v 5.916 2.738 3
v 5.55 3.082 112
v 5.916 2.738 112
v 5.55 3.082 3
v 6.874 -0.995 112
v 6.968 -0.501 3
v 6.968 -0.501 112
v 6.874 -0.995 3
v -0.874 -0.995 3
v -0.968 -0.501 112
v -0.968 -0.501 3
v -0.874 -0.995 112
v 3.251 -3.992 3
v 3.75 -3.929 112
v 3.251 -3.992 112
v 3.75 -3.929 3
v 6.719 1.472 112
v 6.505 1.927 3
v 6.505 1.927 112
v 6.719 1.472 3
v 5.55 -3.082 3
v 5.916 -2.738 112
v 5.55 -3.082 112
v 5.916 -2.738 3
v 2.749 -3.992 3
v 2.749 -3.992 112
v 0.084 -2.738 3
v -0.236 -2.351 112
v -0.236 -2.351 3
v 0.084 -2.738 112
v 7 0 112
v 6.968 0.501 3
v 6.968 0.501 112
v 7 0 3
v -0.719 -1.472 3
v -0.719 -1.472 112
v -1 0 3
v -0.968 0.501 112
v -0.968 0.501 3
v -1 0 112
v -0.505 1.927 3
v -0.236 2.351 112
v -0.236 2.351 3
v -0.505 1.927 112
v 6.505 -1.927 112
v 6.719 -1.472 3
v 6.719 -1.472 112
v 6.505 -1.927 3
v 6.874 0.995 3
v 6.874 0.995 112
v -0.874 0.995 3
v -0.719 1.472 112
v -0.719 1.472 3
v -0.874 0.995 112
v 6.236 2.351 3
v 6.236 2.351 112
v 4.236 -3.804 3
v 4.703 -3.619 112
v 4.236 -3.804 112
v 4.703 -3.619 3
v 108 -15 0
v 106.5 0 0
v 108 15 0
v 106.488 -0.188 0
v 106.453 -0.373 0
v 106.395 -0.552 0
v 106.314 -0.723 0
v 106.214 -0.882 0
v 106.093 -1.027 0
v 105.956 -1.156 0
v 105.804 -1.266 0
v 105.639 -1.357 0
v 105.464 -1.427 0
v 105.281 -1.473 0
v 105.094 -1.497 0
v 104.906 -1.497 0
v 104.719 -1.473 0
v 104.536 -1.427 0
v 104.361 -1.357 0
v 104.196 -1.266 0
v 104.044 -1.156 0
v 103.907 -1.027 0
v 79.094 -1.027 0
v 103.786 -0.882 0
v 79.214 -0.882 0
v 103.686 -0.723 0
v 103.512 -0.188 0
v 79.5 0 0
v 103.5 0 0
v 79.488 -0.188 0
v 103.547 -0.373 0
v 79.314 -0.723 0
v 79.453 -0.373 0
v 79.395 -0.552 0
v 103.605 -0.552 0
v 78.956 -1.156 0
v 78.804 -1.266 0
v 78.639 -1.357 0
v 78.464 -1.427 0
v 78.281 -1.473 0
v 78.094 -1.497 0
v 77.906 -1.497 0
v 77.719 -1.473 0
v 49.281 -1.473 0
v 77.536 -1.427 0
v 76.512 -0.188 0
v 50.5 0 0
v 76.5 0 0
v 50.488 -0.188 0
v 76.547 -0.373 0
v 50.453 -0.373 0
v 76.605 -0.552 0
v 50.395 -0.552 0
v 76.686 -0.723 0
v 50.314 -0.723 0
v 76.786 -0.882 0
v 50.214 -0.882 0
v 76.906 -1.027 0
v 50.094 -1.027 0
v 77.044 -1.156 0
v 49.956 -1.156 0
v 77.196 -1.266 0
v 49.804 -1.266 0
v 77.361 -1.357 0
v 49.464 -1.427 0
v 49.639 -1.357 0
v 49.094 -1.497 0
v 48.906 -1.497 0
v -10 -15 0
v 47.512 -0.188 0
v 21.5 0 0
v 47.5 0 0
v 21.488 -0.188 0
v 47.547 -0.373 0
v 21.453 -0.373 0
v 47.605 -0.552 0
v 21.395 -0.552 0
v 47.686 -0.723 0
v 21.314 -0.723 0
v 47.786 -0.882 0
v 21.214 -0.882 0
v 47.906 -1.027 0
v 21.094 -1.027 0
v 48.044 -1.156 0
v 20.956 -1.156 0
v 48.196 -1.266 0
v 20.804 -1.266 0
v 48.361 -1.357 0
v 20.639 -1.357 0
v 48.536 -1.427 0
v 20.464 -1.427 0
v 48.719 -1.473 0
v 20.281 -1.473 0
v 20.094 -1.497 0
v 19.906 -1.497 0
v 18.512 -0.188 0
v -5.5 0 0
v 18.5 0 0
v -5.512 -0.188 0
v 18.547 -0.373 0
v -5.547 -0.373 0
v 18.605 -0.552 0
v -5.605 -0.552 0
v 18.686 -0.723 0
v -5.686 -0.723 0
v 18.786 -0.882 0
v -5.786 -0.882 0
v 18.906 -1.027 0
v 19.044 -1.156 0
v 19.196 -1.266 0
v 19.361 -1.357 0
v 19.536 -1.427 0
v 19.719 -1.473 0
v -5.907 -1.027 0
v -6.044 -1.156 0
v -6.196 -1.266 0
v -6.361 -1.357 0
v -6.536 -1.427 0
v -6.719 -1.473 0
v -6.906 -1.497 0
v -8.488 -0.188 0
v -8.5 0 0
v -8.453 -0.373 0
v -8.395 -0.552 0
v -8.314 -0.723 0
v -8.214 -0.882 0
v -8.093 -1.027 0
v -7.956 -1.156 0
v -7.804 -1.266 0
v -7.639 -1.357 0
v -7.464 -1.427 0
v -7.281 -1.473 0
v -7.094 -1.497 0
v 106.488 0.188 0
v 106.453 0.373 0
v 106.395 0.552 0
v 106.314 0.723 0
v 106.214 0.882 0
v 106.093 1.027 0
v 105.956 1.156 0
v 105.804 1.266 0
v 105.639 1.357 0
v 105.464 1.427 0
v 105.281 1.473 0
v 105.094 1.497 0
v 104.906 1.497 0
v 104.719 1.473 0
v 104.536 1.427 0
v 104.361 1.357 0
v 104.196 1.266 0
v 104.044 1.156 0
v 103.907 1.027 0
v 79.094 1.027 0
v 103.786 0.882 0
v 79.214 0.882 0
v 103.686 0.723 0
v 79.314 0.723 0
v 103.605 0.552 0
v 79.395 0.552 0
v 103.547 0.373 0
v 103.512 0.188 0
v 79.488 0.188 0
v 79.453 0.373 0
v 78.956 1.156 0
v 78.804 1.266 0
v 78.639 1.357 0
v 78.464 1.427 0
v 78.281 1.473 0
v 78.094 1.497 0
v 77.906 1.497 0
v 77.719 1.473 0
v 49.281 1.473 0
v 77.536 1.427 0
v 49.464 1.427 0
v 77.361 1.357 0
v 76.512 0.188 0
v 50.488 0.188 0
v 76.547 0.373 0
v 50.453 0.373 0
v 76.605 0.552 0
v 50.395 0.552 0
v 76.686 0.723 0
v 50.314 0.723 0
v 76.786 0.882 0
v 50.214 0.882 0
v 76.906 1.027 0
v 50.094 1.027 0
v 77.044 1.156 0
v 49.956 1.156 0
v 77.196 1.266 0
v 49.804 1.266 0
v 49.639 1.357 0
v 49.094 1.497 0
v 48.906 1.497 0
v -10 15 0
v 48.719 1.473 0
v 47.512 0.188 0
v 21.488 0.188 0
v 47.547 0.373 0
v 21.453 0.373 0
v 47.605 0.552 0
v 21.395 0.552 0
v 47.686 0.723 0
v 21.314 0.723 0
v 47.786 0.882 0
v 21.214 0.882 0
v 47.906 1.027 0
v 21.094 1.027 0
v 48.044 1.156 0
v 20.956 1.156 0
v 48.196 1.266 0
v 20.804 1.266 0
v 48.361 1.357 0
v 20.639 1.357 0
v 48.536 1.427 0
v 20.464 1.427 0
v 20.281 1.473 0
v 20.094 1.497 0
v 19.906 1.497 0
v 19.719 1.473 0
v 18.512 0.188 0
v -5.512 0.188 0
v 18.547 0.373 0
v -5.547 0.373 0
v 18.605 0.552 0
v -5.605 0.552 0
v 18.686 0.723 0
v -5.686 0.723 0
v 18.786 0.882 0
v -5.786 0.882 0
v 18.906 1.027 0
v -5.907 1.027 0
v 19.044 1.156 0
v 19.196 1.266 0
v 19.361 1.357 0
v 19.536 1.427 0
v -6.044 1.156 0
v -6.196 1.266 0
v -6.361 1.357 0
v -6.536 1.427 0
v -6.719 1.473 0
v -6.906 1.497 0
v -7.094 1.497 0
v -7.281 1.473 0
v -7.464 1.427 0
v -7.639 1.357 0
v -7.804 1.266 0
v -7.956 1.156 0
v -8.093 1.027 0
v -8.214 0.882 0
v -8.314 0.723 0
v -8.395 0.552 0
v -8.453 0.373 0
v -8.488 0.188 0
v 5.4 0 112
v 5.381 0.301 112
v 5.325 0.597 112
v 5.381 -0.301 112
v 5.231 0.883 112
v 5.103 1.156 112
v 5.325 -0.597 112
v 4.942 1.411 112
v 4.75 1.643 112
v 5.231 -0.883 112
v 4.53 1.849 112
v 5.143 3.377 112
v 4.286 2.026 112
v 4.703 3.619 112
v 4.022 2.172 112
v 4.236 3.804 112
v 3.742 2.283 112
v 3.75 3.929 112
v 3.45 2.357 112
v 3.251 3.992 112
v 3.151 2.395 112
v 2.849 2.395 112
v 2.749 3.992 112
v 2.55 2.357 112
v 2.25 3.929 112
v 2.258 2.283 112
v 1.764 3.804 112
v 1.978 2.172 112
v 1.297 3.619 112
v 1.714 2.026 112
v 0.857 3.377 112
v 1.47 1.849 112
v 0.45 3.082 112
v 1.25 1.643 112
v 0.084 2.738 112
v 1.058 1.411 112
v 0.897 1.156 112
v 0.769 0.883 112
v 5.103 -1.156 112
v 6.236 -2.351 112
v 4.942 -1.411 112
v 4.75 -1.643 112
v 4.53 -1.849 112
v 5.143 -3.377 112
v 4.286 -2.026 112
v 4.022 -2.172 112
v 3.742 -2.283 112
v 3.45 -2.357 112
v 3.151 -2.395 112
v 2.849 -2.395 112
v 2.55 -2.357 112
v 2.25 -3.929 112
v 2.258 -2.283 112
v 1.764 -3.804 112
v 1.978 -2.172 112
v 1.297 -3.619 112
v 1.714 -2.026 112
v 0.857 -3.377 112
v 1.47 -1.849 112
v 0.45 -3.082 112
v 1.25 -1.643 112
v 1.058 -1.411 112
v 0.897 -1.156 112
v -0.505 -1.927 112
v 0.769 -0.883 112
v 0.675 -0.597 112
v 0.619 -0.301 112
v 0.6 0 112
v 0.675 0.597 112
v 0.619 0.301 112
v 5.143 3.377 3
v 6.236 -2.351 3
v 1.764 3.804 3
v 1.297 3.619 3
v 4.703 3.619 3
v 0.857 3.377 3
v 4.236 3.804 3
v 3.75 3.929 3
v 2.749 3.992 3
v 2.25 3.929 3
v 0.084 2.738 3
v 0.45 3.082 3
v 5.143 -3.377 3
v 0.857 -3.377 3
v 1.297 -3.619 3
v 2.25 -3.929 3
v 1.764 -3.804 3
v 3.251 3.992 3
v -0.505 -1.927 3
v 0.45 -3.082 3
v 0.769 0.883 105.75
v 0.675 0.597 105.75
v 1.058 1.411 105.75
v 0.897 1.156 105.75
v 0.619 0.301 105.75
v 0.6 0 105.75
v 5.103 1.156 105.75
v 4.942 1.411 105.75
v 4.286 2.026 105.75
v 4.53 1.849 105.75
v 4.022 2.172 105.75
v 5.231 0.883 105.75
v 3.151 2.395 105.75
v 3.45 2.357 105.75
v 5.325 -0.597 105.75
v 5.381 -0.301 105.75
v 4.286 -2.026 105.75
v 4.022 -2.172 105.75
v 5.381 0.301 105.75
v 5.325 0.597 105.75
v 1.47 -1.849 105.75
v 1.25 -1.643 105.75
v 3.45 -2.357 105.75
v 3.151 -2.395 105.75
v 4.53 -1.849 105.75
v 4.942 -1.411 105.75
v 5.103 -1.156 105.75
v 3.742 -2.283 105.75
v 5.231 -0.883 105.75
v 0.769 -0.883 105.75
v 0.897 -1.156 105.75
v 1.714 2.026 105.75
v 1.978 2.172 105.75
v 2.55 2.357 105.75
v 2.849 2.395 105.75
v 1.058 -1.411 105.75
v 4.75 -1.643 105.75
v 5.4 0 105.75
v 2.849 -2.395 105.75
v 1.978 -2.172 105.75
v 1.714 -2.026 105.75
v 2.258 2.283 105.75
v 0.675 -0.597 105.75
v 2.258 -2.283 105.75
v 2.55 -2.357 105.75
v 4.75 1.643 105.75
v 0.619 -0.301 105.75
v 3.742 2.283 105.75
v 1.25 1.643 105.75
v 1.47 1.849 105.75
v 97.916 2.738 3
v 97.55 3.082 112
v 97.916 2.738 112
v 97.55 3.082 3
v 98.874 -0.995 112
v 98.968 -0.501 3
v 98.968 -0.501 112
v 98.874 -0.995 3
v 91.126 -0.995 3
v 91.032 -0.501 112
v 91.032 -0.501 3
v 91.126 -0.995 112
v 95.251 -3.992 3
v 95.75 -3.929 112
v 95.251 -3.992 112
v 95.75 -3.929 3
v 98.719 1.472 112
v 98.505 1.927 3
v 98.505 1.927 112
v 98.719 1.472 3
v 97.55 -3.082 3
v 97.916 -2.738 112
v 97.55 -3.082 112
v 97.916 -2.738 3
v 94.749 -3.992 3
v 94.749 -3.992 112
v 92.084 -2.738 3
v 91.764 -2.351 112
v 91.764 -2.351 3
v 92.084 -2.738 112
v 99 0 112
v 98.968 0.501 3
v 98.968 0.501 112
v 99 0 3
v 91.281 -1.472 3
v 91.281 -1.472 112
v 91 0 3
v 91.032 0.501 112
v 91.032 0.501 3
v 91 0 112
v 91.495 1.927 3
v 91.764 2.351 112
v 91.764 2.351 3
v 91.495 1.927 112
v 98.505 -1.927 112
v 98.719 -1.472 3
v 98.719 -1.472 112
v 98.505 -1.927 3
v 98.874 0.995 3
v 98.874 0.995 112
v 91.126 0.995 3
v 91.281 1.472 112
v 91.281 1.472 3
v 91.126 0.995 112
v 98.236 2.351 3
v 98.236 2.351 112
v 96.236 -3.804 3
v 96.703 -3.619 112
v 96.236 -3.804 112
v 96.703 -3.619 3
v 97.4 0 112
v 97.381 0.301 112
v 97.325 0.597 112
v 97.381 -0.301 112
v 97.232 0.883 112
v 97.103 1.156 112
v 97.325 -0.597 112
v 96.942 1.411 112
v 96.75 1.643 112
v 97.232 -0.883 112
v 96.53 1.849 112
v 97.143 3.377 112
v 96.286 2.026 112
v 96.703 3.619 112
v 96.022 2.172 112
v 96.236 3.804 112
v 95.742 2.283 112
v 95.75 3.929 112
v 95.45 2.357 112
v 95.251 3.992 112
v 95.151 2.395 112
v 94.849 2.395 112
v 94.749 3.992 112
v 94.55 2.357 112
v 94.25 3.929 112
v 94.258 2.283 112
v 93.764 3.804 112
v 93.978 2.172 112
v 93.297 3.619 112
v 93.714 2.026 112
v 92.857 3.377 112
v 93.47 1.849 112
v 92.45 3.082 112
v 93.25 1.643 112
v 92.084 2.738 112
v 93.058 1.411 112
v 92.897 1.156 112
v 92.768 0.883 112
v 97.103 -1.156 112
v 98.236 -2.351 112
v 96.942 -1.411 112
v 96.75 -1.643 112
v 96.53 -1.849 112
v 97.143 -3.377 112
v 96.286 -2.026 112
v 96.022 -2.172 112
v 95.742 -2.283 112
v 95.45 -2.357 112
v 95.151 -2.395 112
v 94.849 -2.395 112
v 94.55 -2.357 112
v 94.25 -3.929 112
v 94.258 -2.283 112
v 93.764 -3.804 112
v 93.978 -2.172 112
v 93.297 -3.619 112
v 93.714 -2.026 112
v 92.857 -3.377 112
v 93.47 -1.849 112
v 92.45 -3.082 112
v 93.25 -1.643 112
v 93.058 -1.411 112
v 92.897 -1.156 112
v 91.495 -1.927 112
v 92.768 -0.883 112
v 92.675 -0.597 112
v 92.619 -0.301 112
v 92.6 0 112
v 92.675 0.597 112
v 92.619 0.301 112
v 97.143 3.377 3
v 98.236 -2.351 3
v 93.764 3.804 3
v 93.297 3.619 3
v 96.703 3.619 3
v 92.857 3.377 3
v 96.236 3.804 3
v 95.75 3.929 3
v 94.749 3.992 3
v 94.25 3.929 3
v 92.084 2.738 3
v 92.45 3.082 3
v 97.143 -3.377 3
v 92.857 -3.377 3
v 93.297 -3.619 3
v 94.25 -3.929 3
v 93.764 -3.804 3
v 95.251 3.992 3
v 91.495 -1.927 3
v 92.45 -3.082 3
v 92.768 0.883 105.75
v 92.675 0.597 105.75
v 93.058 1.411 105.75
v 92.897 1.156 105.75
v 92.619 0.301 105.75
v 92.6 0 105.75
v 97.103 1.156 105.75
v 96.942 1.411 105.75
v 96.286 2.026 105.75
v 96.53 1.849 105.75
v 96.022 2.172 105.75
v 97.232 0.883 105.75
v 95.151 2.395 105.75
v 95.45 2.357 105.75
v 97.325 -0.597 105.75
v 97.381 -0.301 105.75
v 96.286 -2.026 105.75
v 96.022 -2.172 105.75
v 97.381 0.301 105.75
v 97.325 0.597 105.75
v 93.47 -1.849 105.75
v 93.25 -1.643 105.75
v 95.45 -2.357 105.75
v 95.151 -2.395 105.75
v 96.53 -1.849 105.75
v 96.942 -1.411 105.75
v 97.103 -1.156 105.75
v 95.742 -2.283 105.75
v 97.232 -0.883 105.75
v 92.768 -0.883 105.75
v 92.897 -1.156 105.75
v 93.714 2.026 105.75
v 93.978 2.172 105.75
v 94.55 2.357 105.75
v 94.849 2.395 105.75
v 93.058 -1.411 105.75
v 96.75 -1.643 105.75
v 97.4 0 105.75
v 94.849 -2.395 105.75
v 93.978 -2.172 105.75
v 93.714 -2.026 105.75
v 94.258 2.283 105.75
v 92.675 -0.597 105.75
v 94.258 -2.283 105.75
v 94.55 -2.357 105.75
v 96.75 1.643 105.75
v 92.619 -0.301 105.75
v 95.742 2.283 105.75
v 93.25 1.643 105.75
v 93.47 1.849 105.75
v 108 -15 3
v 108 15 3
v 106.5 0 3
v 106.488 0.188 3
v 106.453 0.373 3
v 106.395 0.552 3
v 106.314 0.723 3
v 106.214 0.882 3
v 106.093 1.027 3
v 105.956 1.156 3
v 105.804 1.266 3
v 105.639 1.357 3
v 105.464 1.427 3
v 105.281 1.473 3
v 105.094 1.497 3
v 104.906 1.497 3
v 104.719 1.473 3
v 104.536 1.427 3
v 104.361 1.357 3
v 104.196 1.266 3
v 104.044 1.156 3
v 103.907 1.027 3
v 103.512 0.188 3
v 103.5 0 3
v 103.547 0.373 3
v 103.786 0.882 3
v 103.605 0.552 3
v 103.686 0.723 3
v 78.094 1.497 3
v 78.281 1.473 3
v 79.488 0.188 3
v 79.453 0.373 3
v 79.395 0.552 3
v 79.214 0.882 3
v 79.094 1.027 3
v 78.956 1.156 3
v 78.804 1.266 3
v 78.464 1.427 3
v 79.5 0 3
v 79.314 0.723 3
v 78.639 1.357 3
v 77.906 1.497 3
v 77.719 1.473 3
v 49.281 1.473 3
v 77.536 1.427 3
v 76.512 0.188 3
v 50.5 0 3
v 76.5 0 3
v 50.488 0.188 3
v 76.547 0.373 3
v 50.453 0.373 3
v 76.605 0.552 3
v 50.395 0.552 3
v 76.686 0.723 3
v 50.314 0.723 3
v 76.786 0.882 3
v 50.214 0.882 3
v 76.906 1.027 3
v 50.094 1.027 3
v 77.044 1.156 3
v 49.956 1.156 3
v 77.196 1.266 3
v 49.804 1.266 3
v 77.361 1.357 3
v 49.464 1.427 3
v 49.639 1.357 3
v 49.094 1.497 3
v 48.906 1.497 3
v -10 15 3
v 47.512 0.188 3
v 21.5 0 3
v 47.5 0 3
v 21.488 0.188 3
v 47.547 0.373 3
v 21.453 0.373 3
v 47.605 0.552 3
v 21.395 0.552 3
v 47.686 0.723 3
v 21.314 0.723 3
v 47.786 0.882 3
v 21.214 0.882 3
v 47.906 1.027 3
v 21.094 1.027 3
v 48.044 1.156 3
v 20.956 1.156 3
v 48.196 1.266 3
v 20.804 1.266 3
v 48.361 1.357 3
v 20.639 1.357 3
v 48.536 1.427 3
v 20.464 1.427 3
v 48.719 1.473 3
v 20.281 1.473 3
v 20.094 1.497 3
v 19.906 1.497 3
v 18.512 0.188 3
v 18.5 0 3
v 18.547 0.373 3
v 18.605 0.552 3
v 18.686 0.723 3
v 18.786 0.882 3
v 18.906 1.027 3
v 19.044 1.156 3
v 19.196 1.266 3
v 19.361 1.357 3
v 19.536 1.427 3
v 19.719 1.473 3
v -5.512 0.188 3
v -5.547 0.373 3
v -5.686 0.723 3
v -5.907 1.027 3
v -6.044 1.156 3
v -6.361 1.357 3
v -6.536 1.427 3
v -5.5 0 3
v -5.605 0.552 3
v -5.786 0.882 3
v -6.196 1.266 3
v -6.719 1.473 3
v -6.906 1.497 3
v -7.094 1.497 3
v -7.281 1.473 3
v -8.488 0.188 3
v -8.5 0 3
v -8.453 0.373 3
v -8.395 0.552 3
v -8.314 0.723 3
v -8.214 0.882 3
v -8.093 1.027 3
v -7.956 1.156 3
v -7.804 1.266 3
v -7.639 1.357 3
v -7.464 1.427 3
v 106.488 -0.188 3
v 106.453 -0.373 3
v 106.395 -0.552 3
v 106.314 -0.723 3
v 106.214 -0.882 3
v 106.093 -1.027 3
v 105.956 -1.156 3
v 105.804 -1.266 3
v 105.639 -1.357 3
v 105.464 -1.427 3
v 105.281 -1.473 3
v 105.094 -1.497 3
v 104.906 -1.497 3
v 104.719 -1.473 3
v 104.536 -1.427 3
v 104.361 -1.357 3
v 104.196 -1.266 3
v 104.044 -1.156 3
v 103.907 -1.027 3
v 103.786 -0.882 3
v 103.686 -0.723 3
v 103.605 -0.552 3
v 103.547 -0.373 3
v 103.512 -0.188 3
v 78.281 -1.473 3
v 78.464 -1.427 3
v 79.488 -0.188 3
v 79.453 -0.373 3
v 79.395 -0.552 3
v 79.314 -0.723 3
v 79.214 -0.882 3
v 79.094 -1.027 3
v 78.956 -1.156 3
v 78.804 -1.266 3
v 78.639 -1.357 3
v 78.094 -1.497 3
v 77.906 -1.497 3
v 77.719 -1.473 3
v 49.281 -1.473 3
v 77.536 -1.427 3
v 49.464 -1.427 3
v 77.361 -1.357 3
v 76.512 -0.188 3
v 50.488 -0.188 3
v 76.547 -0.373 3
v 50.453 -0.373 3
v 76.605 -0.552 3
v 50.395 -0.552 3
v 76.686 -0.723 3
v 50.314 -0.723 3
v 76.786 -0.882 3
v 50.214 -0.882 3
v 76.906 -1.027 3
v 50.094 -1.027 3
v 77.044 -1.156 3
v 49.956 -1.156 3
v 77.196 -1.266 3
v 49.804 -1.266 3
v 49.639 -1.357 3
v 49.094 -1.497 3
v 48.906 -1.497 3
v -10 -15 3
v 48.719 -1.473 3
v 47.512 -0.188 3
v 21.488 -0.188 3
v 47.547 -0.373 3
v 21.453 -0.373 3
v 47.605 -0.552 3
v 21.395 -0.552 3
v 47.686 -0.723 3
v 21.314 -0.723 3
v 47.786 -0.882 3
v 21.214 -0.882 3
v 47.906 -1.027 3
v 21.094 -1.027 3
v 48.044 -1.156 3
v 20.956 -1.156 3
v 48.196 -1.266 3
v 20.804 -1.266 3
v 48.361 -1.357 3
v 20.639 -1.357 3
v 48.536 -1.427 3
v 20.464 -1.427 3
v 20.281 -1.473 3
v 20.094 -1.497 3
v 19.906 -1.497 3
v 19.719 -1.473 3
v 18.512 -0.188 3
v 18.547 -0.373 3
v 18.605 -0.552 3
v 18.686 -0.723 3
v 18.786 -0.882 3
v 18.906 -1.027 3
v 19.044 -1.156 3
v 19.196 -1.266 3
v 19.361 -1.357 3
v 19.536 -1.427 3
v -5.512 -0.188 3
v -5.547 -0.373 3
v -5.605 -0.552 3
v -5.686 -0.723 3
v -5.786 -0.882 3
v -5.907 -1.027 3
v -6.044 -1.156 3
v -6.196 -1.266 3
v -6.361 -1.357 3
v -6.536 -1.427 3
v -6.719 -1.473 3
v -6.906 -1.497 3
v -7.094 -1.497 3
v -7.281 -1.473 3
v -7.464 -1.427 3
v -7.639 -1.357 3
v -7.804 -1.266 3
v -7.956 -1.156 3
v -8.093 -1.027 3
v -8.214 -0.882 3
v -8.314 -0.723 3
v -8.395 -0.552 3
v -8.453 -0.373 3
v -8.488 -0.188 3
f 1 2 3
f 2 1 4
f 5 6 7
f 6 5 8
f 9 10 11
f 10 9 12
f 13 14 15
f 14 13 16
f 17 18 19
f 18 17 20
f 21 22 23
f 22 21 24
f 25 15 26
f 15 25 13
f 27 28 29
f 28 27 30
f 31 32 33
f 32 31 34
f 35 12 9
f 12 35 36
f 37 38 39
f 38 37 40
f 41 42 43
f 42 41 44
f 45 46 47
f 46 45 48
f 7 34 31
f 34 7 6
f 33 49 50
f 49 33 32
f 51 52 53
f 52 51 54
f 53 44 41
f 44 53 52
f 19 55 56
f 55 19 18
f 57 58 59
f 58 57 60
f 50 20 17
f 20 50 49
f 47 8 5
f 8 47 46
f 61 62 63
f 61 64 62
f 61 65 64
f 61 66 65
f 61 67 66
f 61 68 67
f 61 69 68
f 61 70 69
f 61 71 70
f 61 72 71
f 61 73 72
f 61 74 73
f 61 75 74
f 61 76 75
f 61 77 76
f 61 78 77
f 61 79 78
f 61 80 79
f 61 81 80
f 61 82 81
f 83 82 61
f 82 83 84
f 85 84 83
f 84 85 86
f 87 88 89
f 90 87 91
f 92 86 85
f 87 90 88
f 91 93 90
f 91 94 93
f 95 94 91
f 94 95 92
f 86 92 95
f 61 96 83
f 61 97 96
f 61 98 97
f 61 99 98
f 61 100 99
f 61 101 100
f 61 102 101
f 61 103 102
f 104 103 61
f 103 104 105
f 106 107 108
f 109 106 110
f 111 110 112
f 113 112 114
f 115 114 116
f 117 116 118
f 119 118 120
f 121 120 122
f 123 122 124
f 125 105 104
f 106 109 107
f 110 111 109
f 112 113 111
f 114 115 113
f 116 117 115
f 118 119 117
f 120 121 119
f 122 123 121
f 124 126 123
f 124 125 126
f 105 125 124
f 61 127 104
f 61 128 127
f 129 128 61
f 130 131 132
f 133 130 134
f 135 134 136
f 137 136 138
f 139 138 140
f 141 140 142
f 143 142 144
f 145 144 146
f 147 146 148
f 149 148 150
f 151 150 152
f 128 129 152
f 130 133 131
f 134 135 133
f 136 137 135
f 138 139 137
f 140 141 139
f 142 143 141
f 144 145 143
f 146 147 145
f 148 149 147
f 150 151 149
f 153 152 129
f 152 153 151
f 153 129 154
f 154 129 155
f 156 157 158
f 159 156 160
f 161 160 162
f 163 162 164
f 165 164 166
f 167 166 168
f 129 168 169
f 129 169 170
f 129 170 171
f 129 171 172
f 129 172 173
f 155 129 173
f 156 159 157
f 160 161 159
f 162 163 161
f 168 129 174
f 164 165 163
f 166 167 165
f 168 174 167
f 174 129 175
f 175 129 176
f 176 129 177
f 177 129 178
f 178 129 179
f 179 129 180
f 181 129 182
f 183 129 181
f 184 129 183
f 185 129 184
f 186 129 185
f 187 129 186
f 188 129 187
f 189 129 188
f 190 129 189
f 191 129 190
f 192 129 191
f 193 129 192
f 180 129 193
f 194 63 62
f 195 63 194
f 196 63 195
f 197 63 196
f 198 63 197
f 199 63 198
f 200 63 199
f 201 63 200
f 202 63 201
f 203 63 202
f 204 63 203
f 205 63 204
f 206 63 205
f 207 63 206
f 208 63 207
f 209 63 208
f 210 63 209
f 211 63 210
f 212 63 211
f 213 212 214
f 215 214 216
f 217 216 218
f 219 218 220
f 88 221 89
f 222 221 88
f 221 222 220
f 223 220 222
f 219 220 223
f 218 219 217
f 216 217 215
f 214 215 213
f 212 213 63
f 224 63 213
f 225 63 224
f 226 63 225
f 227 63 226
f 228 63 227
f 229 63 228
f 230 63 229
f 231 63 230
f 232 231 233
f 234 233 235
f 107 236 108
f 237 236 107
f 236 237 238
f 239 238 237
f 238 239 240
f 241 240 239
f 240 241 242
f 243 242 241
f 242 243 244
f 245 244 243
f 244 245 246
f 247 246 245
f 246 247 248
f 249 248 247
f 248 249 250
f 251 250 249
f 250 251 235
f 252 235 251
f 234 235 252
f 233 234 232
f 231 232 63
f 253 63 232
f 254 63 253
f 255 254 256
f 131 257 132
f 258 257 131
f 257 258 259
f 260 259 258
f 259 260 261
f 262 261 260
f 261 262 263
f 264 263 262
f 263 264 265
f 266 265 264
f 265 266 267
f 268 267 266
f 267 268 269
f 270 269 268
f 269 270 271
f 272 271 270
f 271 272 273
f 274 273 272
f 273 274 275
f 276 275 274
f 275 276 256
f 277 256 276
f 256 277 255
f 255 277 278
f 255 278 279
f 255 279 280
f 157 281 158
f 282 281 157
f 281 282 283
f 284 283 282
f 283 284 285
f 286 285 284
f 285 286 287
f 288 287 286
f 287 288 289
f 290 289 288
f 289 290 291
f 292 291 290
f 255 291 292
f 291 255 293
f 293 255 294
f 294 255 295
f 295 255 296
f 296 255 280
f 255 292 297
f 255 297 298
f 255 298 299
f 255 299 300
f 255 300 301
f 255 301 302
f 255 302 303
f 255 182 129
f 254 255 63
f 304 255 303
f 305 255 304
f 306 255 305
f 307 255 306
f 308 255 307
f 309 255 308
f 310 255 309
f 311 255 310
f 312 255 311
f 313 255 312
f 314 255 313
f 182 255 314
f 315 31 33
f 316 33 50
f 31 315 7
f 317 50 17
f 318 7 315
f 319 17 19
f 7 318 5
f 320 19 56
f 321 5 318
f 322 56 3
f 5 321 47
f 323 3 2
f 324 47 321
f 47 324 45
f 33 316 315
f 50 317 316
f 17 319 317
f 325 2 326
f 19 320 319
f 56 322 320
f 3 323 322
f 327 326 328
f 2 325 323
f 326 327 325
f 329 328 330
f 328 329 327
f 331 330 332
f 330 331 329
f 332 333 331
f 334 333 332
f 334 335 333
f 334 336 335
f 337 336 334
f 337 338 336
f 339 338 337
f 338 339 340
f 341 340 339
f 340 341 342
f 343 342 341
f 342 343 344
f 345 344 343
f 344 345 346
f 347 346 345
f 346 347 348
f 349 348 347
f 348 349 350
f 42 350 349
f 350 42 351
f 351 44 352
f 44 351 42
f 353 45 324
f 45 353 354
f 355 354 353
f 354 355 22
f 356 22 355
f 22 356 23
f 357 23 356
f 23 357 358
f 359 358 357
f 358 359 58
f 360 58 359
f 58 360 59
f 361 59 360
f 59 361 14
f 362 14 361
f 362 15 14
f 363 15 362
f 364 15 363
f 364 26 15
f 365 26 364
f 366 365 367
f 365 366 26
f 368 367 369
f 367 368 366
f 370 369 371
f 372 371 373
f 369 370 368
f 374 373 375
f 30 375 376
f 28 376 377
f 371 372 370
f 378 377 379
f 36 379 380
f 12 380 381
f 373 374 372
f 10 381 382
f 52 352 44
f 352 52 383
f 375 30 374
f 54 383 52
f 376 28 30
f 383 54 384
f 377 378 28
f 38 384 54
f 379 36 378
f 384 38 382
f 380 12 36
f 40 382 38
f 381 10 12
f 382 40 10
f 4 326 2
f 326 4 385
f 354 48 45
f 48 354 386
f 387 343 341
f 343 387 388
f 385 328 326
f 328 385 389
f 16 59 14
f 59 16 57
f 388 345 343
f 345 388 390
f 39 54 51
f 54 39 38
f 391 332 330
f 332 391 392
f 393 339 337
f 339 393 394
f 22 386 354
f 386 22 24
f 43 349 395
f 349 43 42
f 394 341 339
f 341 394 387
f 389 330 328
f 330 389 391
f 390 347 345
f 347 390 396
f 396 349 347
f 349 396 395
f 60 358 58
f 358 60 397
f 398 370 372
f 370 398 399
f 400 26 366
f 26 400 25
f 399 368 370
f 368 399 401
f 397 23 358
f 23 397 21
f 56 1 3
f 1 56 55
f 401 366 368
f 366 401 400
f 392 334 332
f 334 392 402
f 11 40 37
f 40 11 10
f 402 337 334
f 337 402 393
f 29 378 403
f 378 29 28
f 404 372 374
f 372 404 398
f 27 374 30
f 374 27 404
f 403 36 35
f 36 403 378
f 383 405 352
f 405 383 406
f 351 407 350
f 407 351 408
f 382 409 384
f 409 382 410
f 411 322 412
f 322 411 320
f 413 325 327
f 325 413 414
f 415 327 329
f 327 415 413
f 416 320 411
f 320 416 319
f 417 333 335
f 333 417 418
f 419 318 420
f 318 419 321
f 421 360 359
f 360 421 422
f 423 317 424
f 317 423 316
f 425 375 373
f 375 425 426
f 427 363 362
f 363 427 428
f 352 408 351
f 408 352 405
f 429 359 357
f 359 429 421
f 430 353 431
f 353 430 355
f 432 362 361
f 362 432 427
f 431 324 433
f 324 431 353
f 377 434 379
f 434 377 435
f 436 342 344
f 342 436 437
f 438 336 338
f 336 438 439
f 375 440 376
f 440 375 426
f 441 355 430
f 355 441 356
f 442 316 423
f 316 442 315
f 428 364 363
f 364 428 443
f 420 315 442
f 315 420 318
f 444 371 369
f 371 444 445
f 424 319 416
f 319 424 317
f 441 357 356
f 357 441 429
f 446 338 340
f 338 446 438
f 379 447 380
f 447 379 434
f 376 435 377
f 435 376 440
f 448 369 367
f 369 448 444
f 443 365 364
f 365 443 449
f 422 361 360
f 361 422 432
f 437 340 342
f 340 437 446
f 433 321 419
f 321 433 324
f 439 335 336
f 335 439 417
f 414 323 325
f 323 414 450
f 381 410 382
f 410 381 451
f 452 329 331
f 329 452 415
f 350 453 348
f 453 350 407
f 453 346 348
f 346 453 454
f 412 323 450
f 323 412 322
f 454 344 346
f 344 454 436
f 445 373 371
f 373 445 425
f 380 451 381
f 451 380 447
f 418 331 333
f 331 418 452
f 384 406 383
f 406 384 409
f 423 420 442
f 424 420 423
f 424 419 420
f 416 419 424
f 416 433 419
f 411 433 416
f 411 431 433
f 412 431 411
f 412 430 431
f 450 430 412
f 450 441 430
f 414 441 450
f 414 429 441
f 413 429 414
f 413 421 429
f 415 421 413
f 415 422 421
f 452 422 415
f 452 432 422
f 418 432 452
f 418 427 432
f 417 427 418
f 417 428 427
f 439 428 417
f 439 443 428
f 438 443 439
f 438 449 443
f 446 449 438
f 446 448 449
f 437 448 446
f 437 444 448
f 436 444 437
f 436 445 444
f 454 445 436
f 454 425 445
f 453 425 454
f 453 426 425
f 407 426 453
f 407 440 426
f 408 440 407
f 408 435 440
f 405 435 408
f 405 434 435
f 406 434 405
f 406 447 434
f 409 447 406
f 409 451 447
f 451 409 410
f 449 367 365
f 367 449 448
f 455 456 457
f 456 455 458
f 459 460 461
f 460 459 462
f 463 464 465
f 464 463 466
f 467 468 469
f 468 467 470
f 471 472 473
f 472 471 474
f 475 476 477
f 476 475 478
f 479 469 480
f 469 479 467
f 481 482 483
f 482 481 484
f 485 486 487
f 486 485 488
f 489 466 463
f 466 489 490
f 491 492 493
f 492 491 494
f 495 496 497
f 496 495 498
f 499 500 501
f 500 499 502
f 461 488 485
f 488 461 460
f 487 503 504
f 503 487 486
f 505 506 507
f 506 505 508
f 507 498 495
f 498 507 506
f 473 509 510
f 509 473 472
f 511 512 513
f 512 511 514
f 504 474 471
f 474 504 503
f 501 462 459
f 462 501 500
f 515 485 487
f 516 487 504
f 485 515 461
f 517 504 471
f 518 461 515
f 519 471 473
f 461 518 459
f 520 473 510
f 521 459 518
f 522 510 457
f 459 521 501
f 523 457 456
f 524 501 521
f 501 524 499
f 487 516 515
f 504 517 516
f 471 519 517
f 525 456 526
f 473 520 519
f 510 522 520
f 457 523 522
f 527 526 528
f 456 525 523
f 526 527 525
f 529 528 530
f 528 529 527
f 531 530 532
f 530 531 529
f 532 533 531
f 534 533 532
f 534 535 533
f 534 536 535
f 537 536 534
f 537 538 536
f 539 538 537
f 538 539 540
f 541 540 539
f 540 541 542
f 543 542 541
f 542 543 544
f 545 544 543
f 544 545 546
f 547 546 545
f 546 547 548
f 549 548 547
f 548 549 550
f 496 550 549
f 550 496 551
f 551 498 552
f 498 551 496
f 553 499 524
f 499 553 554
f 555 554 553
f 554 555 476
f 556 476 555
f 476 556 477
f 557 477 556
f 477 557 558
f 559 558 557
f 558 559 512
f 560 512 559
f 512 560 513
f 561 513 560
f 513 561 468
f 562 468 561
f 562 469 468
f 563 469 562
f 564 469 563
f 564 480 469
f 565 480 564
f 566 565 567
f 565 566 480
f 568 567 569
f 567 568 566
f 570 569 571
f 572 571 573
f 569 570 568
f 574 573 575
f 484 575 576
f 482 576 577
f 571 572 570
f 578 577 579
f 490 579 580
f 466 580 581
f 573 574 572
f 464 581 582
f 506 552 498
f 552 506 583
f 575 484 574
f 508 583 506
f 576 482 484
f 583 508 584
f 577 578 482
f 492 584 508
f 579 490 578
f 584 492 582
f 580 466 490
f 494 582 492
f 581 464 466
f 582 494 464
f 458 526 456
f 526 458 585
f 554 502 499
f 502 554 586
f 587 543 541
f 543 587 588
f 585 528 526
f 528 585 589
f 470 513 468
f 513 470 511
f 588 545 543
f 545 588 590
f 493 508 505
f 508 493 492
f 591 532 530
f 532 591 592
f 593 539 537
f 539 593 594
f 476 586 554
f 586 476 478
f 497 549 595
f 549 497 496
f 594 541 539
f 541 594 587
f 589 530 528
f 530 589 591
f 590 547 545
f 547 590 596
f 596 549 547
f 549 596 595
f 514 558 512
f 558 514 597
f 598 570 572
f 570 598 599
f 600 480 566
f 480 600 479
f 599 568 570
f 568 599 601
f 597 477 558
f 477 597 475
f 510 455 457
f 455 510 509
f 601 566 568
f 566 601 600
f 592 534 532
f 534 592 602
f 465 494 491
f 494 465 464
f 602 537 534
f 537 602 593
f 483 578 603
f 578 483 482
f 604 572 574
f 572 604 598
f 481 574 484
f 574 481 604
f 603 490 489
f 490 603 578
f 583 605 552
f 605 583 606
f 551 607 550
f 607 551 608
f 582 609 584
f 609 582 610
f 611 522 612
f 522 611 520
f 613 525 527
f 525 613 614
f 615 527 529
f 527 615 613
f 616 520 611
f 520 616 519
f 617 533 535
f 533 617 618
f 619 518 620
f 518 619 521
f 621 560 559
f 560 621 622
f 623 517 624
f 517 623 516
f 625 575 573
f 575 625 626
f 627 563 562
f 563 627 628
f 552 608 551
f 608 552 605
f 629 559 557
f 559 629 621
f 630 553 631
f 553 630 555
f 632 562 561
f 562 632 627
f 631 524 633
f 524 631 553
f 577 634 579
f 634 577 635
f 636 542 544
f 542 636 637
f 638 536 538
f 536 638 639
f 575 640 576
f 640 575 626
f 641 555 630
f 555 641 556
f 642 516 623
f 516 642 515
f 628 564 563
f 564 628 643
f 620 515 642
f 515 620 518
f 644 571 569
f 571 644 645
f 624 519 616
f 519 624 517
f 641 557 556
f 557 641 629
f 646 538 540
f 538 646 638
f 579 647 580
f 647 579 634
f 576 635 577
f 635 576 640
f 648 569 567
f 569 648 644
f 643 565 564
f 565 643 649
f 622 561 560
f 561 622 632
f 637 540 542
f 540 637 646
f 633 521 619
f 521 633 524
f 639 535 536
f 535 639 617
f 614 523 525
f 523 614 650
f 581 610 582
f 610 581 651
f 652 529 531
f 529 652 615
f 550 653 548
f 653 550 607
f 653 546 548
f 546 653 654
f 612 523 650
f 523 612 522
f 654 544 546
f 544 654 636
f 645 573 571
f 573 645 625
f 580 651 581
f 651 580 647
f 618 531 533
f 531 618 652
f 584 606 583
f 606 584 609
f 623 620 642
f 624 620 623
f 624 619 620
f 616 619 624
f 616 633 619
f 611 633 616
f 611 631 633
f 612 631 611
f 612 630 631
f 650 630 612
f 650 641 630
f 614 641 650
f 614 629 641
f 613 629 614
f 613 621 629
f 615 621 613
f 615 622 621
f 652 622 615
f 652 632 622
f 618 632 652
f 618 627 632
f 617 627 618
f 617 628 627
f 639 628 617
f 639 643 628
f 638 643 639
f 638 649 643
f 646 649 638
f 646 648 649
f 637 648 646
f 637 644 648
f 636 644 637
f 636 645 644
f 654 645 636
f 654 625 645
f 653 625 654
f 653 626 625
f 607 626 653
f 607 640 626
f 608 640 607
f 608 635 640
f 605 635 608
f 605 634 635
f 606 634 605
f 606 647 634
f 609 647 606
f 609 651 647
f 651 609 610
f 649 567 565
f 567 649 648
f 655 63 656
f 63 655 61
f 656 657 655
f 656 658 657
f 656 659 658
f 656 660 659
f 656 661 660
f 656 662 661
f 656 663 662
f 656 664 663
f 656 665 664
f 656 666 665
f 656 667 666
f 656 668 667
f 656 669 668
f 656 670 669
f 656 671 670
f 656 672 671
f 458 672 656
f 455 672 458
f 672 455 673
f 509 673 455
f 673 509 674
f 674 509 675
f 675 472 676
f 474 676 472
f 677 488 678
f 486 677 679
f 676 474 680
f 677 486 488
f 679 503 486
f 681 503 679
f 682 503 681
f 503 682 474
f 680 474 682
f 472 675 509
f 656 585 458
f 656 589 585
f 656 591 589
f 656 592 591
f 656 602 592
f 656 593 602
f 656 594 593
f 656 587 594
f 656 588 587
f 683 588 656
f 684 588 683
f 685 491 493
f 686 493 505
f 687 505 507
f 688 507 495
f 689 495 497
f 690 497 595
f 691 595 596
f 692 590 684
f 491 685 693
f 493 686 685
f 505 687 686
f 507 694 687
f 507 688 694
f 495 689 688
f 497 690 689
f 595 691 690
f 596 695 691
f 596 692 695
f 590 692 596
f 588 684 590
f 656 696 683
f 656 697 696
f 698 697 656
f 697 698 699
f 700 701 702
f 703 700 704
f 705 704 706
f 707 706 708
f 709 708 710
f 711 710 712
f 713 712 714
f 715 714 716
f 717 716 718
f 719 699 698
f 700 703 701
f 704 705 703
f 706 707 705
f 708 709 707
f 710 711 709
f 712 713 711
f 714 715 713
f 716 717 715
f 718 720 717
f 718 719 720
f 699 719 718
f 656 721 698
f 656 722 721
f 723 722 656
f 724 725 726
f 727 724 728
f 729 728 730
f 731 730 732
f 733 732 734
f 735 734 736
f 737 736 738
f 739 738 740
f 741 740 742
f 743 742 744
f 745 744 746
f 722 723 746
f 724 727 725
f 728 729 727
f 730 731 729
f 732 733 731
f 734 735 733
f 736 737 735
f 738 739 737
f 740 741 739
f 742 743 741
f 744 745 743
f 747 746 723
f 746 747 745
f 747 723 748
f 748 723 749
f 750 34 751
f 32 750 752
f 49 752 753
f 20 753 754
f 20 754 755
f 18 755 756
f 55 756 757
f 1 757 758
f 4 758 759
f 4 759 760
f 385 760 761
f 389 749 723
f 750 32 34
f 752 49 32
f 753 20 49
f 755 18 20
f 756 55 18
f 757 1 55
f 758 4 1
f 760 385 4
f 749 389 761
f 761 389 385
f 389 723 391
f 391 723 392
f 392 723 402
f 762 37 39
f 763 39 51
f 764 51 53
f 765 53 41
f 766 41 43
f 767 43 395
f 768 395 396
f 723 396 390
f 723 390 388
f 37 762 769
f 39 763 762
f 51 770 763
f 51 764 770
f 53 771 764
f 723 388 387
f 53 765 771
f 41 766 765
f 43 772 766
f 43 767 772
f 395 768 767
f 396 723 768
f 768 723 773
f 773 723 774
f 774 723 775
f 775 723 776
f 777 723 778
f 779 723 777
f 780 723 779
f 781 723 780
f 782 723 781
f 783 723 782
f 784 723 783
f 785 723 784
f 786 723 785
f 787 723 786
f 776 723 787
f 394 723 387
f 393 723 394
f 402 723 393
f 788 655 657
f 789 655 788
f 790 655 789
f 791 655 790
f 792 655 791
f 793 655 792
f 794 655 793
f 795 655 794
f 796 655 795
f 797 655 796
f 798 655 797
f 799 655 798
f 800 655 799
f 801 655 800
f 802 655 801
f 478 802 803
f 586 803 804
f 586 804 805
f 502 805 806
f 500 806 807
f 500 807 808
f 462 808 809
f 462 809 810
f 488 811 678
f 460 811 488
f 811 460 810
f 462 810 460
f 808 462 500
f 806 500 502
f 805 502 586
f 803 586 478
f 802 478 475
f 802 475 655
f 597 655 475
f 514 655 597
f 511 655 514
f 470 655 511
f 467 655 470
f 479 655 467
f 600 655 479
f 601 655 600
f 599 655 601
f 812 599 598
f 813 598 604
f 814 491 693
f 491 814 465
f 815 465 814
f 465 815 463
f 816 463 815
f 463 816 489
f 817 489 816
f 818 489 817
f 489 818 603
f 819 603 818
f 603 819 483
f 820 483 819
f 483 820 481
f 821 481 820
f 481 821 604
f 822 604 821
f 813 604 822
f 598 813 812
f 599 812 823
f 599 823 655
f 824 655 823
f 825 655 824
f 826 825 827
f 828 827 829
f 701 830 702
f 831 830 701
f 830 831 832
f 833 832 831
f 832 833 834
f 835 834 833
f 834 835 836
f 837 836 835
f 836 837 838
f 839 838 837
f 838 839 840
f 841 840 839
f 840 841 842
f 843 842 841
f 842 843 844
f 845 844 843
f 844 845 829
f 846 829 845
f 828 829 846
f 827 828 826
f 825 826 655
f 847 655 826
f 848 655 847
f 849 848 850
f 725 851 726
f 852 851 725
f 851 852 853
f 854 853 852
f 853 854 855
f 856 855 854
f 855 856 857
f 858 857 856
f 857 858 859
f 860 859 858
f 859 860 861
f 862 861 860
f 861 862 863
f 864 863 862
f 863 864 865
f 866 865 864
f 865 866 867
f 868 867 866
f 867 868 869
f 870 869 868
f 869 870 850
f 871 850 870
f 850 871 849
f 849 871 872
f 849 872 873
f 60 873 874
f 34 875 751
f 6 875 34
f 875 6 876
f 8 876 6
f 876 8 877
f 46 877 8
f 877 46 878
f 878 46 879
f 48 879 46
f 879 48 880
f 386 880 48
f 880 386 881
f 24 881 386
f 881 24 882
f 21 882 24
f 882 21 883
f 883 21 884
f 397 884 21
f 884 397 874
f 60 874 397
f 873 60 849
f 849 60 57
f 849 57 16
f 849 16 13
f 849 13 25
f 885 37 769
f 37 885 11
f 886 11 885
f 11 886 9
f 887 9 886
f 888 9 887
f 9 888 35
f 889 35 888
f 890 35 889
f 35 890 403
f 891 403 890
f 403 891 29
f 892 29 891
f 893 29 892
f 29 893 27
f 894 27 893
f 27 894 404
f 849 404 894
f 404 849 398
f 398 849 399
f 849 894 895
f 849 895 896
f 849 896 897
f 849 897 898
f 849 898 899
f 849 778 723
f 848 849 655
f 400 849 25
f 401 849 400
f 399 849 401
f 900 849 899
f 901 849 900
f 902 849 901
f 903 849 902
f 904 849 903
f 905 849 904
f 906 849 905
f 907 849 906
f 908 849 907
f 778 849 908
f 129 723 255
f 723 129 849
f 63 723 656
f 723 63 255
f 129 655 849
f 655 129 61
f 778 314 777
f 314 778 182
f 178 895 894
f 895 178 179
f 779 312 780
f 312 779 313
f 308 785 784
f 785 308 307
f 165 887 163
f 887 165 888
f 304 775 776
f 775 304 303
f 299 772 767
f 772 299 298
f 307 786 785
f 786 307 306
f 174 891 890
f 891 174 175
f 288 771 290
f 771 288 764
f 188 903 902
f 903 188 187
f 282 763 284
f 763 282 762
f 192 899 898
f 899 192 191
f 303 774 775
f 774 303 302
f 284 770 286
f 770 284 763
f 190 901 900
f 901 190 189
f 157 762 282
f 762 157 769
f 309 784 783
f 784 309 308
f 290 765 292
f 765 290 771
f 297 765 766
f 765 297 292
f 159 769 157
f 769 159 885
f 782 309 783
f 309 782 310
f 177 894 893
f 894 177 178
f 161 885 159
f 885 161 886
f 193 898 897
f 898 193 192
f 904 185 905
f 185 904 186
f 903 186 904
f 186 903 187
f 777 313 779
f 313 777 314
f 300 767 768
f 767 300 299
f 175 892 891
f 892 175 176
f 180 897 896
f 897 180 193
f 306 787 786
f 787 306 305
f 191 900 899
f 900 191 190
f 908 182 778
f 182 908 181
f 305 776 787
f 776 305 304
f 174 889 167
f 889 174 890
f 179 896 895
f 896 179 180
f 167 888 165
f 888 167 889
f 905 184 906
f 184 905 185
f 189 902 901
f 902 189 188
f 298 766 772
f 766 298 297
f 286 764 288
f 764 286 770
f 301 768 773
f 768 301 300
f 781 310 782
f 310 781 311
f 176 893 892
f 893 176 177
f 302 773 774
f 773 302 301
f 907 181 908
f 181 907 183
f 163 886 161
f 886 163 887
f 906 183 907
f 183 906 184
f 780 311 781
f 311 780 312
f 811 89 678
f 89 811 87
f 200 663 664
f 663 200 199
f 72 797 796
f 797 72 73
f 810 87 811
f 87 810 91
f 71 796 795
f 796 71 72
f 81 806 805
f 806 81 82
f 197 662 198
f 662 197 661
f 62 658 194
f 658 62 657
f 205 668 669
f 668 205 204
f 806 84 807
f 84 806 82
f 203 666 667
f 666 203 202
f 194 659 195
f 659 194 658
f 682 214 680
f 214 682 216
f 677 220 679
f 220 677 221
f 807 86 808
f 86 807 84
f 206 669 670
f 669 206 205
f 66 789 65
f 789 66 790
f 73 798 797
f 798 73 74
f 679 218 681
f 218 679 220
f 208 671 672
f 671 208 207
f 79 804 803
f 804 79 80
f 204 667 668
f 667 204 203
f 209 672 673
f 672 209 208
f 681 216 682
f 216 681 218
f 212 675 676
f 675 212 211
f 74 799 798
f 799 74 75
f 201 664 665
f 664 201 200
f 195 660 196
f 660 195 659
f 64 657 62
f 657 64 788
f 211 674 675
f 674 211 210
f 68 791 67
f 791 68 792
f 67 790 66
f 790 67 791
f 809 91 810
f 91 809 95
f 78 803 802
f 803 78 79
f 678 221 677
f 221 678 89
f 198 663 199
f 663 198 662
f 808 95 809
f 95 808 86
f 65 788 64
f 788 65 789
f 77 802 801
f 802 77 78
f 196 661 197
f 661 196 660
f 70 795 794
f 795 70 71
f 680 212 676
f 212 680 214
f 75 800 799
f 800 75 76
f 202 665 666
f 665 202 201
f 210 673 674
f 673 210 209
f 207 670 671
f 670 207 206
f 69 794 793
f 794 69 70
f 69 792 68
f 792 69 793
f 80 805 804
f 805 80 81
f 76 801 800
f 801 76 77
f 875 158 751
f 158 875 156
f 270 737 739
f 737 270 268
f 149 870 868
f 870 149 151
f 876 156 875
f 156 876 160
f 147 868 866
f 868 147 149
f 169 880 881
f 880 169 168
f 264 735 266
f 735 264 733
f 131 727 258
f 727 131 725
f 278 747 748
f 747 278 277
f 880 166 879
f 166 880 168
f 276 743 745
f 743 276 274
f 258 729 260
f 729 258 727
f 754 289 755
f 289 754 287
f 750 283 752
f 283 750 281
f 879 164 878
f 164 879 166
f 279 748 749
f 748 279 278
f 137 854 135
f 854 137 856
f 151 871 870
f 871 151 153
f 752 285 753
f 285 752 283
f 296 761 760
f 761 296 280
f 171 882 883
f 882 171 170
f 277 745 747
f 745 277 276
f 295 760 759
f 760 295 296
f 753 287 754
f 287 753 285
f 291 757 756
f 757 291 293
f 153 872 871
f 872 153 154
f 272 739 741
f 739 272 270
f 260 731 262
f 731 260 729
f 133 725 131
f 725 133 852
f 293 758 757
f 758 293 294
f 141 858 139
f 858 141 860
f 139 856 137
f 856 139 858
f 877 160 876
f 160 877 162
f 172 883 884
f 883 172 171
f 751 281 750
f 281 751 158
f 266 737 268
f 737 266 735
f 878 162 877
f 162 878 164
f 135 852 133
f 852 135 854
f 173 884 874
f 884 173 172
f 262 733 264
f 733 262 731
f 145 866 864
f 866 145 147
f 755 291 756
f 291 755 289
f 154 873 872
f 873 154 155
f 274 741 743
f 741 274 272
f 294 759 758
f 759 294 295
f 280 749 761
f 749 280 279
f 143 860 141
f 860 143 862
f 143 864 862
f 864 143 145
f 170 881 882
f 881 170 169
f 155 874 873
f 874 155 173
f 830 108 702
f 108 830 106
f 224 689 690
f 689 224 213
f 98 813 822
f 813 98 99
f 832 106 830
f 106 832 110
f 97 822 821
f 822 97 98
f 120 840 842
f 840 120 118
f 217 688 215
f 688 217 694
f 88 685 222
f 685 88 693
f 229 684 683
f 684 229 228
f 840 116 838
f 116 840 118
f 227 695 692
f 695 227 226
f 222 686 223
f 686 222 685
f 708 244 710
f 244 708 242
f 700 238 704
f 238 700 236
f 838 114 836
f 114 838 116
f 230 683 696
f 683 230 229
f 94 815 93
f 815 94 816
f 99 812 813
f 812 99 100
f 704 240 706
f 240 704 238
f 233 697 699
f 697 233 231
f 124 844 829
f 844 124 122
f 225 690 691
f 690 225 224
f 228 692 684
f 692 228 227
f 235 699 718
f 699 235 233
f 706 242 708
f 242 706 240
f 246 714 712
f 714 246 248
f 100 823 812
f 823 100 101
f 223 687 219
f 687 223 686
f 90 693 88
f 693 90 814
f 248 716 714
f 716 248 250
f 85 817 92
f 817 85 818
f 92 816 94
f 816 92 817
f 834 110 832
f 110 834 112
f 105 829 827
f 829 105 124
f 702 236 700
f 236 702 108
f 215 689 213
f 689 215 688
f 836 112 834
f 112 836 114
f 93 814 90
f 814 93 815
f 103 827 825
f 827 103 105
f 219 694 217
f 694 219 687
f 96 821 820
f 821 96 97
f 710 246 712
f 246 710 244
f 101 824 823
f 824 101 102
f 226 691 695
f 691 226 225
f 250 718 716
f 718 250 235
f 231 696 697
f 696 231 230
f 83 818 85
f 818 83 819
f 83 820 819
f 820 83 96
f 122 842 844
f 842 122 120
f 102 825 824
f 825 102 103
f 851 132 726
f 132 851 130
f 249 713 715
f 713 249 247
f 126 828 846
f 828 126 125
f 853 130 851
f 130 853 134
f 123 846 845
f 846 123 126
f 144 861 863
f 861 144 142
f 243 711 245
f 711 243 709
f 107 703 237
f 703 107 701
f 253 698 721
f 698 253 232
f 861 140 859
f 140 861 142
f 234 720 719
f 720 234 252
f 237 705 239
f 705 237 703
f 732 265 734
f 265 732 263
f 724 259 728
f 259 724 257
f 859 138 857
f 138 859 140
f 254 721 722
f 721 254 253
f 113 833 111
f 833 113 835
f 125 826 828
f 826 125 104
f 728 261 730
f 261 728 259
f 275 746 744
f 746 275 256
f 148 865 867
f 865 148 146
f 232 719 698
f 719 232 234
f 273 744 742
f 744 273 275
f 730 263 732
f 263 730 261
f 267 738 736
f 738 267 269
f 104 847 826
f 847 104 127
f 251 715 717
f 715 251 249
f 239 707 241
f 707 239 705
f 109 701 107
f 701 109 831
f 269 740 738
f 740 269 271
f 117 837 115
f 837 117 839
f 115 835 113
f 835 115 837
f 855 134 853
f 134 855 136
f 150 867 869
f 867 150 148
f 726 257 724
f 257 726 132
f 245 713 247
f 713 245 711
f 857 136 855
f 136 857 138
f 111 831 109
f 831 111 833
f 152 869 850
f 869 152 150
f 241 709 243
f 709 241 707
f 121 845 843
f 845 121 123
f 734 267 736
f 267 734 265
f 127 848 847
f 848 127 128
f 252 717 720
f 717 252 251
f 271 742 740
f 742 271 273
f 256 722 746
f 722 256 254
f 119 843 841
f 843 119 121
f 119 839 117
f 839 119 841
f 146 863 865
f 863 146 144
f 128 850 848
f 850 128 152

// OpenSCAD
$fn=50;

ZZ=120;
WW=98;
D=8;
THICK=3;

// eraser: 12.5 4.5
module onecylinder() {
    difference() {
        cylinder(ZZ-8,d=D);
#        translate([0,0,ZZ-8-6.25]) cylinder(12.5,d=4.8);
    }
//translate([0,0,ZZ-8]) cylinder(8,d1=D,d2=1);
}


module main() {
    translate([3,0,0]) onecylinder();
    translate([WW-3,0,0]) onecylinder();
    difference() {
        translate([-10,-15,0]) cube([WW+20,30,THICK]);
        translate([-7,0,0]) cylinder(THICK,d=3);
        translate([WW+7,0,0]) cylinder(THICK,d=3);
        translate([20,0,0]) cylinder(THICK,d=3);
        translate([WW-20,0,0]) cylinder(THICK,d=3);
        translate([WW/2,0,0]) cylinder(THICK,d=3);
    }
}

main();
